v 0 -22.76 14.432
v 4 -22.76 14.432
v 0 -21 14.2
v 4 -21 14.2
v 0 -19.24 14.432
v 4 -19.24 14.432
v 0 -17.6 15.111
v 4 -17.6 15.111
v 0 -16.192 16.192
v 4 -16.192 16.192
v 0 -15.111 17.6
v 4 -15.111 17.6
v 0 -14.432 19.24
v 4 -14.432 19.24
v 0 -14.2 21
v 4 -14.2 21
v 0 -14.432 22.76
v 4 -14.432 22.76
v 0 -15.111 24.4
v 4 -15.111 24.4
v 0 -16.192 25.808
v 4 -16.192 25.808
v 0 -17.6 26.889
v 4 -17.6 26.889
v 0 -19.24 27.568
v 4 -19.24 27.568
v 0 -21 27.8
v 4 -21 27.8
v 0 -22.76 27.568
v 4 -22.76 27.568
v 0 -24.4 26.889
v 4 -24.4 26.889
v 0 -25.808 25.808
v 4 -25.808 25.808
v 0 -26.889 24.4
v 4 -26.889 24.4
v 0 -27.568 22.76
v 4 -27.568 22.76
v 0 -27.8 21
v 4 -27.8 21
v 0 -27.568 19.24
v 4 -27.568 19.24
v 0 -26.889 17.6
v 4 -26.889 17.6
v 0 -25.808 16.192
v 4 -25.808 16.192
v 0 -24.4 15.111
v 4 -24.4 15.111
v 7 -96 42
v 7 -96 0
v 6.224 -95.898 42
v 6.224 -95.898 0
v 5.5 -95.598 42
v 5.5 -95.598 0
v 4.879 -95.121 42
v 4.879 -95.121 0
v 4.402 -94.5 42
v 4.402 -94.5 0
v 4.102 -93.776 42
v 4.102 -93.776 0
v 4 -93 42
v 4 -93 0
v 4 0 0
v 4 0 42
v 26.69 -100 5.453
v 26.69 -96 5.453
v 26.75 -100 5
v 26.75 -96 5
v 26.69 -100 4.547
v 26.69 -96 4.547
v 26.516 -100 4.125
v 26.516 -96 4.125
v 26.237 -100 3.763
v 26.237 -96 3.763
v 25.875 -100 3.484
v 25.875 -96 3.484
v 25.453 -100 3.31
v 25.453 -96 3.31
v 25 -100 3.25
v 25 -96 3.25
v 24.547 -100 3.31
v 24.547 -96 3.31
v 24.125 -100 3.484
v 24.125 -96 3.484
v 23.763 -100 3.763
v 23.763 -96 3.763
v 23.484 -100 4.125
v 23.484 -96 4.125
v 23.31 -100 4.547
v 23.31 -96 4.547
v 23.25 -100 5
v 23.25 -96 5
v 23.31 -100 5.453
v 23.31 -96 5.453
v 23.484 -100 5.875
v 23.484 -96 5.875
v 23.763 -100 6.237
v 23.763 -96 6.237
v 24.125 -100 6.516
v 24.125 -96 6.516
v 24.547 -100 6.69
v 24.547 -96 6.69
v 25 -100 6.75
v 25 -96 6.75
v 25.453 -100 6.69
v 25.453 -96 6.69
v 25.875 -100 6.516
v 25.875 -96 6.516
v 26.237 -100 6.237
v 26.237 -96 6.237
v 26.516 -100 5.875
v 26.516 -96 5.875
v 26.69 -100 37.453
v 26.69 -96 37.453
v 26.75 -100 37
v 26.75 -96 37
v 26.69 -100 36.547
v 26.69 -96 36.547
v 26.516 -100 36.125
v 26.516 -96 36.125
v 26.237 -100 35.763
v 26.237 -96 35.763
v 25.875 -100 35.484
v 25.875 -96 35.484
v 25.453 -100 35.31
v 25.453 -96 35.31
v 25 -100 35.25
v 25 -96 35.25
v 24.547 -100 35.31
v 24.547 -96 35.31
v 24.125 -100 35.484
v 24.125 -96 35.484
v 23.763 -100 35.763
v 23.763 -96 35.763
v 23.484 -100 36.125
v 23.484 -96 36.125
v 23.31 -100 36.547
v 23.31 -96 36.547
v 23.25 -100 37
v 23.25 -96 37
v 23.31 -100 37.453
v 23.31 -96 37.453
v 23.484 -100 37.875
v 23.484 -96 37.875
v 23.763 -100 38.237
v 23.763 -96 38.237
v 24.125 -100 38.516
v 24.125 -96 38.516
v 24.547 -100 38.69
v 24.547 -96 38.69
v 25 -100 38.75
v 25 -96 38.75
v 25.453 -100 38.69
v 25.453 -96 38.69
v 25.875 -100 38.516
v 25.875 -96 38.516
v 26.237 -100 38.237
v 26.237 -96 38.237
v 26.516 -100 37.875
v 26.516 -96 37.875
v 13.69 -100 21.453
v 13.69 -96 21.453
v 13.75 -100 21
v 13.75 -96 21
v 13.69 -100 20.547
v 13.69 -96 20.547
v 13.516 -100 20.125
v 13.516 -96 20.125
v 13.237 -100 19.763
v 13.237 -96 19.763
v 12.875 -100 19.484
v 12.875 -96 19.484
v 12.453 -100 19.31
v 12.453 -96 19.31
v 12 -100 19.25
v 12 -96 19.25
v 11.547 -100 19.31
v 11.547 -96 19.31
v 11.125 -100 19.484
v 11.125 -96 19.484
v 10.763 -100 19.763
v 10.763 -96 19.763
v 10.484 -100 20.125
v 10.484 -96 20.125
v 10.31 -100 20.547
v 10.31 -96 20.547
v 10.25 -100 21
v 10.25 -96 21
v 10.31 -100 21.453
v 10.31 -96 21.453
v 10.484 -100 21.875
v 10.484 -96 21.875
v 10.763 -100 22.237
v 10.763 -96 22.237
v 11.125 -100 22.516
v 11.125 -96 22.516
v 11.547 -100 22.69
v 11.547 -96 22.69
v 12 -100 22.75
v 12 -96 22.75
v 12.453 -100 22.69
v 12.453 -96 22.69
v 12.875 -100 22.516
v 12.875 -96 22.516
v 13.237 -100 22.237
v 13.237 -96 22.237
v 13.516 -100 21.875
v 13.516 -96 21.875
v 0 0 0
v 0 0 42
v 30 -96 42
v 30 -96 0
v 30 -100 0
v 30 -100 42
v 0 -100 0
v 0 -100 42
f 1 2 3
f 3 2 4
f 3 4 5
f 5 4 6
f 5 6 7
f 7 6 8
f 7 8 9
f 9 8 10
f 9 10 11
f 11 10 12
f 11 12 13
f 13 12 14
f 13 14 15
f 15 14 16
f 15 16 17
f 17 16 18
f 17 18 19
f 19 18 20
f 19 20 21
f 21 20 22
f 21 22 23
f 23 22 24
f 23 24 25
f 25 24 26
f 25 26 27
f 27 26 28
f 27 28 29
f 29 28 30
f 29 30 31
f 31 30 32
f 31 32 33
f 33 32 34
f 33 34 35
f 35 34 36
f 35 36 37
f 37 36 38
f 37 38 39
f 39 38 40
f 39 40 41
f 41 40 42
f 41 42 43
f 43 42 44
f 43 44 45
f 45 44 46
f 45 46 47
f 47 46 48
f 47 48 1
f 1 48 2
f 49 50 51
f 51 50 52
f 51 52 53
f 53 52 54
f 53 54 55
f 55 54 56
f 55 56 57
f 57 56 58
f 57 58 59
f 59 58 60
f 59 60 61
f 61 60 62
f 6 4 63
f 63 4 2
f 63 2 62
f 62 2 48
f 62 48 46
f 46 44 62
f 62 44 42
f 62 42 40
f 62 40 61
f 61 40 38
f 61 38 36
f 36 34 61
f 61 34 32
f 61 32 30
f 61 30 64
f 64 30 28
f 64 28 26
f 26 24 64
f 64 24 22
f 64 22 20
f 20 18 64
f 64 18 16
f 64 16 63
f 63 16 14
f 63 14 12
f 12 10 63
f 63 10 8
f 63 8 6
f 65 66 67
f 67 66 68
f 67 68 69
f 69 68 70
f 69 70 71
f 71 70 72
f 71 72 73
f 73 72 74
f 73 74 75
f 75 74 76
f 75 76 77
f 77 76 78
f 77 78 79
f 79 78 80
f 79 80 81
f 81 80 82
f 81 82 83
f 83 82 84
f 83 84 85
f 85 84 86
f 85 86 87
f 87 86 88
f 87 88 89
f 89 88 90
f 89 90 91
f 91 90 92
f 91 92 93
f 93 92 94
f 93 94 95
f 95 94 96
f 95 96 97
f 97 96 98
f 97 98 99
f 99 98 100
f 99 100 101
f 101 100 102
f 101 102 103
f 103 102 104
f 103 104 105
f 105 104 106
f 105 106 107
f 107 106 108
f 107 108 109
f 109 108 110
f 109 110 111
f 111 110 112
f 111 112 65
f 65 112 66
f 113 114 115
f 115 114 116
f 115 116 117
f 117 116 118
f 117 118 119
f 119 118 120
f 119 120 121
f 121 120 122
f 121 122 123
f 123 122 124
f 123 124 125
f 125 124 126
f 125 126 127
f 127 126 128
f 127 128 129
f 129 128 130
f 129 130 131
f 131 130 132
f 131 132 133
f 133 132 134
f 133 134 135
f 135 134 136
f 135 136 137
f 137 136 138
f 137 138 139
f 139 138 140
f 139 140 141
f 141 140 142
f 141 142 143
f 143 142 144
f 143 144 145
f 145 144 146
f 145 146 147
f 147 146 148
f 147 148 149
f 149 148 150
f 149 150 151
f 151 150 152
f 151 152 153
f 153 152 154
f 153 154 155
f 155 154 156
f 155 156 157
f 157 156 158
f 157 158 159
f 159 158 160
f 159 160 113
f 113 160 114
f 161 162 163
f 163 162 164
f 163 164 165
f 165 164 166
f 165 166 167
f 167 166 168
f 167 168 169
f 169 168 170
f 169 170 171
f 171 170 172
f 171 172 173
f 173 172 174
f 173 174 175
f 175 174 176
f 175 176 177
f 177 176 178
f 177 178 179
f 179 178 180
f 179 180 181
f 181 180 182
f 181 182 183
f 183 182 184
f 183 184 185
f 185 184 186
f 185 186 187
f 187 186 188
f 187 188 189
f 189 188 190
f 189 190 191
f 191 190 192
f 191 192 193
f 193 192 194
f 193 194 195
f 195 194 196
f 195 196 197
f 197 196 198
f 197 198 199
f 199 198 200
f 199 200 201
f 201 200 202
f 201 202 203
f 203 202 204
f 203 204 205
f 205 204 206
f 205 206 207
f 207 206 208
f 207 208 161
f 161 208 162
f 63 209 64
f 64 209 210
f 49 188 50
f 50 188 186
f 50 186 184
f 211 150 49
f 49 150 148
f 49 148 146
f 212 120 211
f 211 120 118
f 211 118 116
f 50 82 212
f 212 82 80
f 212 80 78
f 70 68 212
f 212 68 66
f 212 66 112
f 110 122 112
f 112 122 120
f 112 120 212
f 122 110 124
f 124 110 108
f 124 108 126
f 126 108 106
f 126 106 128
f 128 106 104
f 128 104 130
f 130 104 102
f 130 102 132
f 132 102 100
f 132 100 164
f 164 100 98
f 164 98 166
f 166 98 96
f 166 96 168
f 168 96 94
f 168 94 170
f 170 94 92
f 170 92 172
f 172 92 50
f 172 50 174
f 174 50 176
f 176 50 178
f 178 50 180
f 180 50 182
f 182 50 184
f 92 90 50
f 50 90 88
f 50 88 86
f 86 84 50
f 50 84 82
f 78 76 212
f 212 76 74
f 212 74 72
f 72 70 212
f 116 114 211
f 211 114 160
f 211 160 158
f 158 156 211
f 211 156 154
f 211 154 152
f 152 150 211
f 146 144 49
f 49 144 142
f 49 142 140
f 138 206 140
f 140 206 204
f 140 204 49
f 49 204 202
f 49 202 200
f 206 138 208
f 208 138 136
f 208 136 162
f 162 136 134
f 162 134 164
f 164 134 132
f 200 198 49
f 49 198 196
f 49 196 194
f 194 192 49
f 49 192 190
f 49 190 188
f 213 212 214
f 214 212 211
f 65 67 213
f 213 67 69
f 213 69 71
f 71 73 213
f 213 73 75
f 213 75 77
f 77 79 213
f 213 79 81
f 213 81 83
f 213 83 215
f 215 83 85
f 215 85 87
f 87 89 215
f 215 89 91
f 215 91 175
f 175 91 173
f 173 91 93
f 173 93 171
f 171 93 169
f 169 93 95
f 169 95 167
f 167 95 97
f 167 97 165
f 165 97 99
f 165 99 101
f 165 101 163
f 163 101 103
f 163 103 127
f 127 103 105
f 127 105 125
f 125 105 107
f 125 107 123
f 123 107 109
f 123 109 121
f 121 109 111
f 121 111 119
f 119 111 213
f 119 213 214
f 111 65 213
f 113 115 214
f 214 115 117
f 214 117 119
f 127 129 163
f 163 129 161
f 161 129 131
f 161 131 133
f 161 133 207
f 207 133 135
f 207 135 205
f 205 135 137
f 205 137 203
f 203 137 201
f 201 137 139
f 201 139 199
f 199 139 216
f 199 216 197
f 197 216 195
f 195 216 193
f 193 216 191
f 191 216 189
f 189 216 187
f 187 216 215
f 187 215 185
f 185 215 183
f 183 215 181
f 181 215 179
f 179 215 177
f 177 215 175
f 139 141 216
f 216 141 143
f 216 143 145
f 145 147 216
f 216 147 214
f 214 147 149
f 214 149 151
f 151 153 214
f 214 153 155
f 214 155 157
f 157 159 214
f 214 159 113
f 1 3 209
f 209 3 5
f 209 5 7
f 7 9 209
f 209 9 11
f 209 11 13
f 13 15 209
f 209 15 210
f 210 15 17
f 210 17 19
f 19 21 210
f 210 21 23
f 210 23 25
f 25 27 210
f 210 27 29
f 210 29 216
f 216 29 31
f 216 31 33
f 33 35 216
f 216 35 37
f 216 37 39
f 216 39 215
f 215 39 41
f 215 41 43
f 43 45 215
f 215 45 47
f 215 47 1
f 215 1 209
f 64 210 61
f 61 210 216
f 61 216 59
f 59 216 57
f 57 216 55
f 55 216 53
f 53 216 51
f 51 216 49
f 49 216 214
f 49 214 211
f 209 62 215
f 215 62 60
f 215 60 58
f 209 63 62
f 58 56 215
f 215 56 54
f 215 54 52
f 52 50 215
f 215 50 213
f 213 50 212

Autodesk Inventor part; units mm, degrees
ref_plane "YZ Plane" through (0, 0, 0) normal (1, 0, 0) x (0, 1, 0)
ref_plane "XZ Plane" through (0, 0, 0) normal (0, 1, 0) x (-1, 0, 0)
ref_plane "XY Plane" through (0, 0, 0) normal (0, 0, 1) x (1, 0, 0)
sketch "Sketch1" plane through (0, 0, 0) normal (0, 0, 1) x (1, 0, 0)
  point P0 (0, 0)
sketch "Sketch2" plane through (0, 0, 0) normal (0, 0, 1) x (1, 0, 0)
  line L0 (0, 0) -> (0, -100)
  line L1 (0, -100) -> (30, -100)
  line L2 (30, -100) -> (30, -96)
  line L3 (30, -96) -> (4, -96)
  line L4 (4, -96) -> (4, 0)
  line L5 (4, 0) -> (0, 0)
  dimension "d0" = 100
  dimension "d1" = 30
  dimension "d2" = 4
  dimension "d3" = 26
extrude "Extrusion1" add sketch "Sketch2" along normal blind 42
sketch "Sketch4" plane through (4, -96, 0) normal (0, 1, 0) x (1, 0, 0)
  line L0 (-4, -42) -> (26, -42) projected
  line L1 (-4, 0) -> (26, 0)
  line L2 (26, 0) -> (26, -42)
  line L3 (26, -42) -> (-4, -42)
  line L4 (-4, -42) -> (-4, 0)
  circle A0 centre (21, -37) radius 1.75
  circle A1 centre (21, -5) radius 1.75
  circle A2 centre (8, -21) radius 1.75
  dimension "d11" = 3.5
  dimension "d12" = 3.5
  dimension "d13" = 3.5
  dimension "d14" = 5
  dimension "d15" = 5
  dimension "d16" = 5
  dimension "d17" = 5
  dimension "d18" = 12
  dimension "d19" = 21
extrude "Extrusion3" cut sketch "Sketch4" against normal blind 4 contours A0 | A1 | A2
fillet "Fillet1" radius 3 1 edges at (4, -96, 21)
sketch "Sketch5" plane through (4, 0, 42) normal (1, 0, 0) x (0, 0, -1)
  line L0 (42, 0) -> (0, 0) projected
  line L1 (42, -100) -> (0, -100) projected
  line L2 (42, 0) -> (0, 0)
  line L3 (0, 0) -> (0, -100)
  line L4 (0, -100) -> (42, -100)
  line L5 (42, -100) -> (42, 0)
  circle A0 centre (21, -21) radius 6.8
  dimension "d23" = 13.6
  dimension "d24" = 21
  dimension "d25" = 21
extrude "Extrusion4" cut sketch "Sketch5" against normal blind 4 contours A0
properties part number "Suporte Direito"
